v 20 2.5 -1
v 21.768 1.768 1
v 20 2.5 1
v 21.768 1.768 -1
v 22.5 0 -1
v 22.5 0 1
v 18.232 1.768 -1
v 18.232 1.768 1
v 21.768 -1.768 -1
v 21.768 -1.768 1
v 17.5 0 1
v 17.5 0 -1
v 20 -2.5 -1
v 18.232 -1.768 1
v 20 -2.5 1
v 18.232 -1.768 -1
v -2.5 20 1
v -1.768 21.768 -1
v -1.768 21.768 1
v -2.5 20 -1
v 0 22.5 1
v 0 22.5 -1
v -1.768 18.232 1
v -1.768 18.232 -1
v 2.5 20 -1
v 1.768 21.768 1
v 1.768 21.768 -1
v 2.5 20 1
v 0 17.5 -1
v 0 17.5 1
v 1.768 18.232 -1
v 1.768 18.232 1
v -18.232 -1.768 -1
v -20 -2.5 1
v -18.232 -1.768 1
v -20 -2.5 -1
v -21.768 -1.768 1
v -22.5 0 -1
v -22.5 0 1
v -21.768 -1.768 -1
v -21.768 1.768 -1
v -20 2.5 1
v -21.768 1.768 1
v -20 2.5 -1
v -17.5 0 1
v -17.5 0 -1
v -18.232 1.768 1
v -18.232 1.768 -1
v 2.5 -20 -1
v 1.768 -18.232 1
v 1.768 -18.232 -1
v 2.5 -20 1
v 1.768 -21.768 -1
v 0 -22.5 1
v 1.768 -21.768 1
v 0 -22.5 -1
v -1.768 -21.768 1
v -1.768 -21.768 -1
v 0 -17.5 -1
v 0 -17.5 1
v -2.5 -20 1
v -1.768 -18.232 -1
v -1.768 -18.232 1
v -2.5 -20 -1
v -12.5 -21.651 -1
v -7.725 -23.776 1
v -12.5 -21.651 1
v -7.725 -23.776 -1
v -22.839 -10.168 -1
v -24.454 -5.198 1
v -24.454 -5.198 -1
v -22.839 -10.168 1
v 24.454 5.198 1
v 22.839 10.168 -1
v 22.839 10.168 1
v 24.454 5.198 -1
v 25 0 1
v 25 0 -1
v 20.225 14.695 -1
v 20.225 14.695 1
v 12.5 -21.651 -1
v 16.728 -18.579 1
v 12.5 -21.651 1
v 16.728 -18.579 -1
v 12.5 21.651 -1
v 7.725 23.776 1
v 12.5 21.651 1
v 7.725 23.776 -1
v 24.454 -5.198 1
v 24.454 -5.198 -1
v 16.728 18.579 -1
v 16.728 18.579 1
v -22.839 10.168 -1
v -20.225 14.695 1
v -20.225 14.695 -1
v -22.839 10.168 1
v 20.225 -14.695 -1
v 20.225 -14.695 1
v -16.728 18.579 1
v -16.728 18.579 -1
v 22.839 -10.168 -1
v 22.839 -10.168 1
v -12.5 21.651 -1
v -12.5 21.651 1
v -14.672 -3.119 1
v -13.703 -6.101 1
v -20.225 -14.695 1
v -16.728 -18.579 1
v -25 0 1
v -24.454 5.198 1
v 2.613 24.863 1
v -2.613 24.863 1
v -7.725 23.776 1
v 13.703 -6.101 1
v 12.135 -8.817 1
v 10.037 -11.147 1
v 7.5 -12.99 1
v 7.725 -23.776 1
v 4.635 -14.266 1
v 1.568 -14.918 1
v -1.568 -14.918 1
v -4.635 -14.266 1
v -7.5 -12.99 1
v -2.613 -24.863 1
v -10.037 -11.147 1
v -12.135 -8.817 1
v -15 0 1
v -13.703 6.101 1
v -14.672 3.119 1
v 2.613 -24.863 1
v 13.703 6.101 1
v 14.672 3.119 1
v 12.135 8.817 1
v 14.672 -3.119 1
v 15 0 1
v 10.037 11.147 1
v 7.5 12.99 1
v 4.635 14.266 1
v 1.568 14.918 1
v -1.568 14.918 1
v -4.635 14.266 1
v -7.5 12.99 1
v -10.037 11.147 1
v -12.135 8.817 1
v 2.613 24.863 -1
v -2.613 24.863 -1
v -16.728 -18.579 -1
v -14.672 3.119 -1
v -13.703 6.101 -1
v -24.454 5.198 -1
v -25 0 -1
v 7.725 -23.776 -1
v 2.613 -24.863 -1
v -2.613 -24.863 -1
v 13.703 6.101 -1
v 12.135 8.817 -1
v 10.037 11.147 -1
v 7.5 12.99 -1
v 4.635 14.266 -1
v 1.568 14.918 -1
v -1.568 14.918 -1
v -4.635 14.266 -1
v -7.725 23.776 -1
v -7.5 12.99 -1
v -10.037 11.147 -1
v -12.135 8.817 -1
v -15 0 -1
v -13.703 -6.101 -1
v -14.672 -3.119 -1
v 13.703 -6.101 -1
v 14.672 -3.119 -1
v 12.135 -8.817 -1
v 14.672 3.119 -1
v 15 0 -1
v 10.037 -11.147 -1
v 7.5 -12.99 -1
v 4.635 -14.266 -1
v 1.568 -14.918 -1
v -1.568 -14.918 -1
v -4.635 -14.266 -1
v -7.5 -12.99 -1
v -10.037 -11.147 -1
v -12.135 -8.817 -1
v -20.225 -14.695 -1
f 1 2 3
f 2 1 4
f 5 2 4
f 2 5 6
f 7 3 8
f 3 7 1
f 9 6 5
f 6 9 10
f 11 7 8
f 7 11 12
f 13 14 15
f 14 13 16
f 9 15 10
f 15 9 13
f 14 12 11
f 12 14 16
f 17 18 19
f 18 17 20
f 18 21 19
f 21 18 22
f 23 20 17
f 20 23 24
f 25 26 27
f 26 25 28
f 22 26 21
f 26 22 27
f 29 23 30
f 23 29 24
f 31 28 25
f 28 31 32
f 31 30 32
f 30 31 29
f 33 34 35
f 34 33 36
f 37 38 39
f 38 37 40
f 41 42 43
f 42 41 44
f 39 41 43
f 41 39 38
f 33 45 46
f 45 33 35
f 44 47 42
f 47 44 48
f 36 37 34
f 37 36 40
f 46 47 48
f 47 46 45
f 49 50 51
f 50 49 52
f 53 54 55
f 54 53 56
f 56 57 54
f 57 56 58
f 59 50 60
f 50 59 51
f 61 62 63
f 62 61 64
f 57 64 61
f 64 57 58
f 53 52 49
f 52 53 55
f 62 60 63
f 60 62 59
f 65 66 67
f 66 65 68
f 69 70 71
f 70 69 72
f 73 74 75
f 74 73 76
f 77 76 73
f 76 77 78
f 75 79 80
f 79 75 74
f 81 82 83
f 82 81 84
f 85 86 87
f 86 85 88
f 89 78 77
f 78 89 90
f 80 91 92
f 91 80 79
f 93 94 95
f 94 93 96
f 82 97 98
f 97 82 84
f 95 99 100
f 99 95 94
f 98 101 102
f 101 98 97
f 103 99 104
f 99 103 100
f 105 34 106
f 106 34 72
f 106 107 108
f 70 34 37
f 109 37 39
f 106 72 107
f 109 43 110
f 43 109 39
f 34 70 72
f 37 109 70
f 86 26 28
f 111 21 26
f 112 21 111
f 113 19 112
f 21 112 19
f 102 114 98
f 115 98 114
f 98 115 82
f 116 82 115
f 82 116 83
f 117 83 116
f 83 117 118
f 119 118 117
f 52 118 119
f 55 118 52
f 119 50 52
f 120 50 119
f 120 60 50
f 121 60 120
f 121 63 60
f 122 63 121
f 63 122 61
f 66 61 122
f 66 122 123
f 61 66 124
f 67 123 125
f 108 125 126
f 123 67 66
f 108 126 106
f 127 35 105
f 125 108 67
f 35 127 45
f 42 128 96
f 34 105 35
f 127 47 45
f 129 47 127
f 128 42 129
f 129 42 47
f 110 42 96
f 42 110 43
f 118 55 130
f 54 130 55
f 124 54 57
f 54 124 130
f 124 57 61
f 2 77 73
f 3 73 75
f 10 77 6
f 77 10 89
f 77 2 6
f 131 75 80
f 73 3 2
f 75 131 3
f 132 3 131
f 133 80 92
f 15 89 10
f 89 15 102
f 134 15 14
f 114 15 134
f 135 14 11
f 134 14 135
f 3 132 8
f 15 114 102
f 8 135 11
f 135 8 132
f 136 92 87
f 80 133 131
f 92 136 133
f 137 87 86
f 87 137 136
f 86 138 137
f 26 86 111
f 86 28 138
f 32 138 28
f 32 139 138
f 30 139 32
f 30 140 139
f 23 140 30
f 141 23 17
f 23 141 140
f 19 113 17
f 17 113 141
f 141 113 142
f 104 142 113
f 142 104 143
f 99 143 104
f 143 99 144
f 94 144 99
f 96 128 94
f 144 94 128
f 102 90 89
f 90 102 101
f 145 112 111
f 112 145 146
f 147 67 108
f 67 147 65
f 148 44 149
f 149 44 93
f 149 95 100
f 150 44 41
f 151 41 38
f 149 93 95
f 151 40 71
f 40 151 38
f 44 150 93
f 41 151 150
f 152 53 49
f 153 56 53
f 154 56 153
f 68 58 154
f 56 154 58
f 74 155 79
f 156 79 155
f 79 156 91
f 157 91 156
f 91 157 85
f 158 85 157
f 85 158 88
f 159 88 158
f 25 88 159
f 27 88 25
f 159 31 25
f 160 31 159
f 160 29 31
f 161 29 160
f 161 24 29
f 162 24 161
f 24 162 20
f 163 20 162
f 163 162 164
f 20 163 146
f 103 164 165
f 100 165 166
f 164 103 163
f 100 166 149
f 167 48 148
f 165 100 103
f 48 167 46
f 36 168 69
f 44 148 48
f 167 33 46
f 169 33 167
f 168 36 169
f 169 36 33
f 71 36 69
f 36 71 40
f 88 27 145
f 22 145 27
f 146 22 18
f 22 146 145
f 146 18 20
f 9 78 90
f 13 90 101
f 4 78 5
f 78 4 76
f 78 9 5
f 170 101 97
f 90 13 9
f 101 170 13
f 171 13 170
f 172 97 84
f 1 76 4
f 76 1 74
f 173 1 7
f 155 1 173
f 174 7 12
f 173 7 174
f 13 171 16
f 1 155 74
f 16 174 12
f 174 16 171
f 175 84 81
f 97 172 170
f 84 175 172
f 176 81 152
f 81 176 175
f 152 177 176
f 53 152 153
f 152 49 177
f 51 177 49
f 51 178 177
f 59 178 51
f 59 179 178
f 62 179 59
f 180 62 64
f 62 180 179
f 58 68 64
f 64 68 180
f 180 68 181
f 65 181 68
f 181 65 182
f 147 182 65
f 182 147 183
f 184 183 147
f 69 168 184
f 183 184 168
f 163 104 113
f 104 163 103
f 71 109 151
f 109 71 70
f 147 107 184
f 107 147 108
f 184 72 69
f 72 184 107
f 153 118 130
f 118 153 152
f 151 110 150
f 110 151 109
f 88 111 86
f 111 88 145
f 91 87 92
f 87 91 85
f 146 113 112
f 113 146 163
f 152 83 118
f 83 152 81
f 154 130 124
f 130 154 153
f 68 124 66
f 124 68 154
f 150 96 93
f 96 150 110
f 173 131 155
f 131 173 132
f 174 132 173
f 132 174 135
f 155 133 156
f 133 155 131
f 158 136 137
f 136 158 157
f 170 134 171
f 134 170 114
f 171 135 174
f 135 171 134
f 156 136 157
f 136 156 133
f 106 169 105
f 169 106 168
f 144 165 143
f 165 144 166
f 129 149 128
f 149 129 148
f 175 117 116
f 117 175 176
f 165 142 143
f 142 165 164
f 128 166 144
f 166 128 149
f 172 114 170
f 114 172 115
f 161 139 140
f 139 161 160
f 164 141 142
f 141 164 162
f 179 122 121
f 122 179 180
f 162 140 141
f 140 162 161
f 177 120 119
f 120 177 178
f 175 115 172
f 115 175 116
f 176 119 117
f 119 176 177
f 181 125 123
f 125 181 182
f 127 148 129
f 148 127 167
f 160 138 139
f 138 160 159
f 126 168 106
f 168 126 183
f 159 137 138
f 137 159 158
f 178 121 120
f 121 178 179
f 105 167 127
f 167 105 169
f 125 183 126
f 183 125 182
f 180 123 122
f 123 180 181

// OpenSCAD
// Parameters for flange plate
plate_thickness = 2; // Thickness of the flange plate
outer_diameter = 50; // Outer diameter of the flange plate
inner_diameter = 30; // Inner diameter of the central hole
bolt_hole_diameter = 5; // Diameter of the bolt holes
bolt_hole_count = 4; // Number of bolt holes
bolt_hole_radius = 20; // Radius of the circle on which bolt holes are positioned

module flange_plate() {
    difference() {
        // Create the main plate
        cylinder(h = plate_thickness, d = outer_diameter, center = true);
        
        // Create the central hole
        cylinder(h = plate_thickness + 1, d = inner_diameter, center = true);
        
        // Create the bolt holes
        for (i = [0:bolt_hole_count-1]) {
            rotate([0, 0, i * 360 / bolt_hole_count])
                translate([bolt_hole_radius, 0, 0])
                cylinder(h = plate_thickness + 1, d = bolt_hole_diameter, center = true);
        }
    }
}

// Render the flange plate
flange_plate();
